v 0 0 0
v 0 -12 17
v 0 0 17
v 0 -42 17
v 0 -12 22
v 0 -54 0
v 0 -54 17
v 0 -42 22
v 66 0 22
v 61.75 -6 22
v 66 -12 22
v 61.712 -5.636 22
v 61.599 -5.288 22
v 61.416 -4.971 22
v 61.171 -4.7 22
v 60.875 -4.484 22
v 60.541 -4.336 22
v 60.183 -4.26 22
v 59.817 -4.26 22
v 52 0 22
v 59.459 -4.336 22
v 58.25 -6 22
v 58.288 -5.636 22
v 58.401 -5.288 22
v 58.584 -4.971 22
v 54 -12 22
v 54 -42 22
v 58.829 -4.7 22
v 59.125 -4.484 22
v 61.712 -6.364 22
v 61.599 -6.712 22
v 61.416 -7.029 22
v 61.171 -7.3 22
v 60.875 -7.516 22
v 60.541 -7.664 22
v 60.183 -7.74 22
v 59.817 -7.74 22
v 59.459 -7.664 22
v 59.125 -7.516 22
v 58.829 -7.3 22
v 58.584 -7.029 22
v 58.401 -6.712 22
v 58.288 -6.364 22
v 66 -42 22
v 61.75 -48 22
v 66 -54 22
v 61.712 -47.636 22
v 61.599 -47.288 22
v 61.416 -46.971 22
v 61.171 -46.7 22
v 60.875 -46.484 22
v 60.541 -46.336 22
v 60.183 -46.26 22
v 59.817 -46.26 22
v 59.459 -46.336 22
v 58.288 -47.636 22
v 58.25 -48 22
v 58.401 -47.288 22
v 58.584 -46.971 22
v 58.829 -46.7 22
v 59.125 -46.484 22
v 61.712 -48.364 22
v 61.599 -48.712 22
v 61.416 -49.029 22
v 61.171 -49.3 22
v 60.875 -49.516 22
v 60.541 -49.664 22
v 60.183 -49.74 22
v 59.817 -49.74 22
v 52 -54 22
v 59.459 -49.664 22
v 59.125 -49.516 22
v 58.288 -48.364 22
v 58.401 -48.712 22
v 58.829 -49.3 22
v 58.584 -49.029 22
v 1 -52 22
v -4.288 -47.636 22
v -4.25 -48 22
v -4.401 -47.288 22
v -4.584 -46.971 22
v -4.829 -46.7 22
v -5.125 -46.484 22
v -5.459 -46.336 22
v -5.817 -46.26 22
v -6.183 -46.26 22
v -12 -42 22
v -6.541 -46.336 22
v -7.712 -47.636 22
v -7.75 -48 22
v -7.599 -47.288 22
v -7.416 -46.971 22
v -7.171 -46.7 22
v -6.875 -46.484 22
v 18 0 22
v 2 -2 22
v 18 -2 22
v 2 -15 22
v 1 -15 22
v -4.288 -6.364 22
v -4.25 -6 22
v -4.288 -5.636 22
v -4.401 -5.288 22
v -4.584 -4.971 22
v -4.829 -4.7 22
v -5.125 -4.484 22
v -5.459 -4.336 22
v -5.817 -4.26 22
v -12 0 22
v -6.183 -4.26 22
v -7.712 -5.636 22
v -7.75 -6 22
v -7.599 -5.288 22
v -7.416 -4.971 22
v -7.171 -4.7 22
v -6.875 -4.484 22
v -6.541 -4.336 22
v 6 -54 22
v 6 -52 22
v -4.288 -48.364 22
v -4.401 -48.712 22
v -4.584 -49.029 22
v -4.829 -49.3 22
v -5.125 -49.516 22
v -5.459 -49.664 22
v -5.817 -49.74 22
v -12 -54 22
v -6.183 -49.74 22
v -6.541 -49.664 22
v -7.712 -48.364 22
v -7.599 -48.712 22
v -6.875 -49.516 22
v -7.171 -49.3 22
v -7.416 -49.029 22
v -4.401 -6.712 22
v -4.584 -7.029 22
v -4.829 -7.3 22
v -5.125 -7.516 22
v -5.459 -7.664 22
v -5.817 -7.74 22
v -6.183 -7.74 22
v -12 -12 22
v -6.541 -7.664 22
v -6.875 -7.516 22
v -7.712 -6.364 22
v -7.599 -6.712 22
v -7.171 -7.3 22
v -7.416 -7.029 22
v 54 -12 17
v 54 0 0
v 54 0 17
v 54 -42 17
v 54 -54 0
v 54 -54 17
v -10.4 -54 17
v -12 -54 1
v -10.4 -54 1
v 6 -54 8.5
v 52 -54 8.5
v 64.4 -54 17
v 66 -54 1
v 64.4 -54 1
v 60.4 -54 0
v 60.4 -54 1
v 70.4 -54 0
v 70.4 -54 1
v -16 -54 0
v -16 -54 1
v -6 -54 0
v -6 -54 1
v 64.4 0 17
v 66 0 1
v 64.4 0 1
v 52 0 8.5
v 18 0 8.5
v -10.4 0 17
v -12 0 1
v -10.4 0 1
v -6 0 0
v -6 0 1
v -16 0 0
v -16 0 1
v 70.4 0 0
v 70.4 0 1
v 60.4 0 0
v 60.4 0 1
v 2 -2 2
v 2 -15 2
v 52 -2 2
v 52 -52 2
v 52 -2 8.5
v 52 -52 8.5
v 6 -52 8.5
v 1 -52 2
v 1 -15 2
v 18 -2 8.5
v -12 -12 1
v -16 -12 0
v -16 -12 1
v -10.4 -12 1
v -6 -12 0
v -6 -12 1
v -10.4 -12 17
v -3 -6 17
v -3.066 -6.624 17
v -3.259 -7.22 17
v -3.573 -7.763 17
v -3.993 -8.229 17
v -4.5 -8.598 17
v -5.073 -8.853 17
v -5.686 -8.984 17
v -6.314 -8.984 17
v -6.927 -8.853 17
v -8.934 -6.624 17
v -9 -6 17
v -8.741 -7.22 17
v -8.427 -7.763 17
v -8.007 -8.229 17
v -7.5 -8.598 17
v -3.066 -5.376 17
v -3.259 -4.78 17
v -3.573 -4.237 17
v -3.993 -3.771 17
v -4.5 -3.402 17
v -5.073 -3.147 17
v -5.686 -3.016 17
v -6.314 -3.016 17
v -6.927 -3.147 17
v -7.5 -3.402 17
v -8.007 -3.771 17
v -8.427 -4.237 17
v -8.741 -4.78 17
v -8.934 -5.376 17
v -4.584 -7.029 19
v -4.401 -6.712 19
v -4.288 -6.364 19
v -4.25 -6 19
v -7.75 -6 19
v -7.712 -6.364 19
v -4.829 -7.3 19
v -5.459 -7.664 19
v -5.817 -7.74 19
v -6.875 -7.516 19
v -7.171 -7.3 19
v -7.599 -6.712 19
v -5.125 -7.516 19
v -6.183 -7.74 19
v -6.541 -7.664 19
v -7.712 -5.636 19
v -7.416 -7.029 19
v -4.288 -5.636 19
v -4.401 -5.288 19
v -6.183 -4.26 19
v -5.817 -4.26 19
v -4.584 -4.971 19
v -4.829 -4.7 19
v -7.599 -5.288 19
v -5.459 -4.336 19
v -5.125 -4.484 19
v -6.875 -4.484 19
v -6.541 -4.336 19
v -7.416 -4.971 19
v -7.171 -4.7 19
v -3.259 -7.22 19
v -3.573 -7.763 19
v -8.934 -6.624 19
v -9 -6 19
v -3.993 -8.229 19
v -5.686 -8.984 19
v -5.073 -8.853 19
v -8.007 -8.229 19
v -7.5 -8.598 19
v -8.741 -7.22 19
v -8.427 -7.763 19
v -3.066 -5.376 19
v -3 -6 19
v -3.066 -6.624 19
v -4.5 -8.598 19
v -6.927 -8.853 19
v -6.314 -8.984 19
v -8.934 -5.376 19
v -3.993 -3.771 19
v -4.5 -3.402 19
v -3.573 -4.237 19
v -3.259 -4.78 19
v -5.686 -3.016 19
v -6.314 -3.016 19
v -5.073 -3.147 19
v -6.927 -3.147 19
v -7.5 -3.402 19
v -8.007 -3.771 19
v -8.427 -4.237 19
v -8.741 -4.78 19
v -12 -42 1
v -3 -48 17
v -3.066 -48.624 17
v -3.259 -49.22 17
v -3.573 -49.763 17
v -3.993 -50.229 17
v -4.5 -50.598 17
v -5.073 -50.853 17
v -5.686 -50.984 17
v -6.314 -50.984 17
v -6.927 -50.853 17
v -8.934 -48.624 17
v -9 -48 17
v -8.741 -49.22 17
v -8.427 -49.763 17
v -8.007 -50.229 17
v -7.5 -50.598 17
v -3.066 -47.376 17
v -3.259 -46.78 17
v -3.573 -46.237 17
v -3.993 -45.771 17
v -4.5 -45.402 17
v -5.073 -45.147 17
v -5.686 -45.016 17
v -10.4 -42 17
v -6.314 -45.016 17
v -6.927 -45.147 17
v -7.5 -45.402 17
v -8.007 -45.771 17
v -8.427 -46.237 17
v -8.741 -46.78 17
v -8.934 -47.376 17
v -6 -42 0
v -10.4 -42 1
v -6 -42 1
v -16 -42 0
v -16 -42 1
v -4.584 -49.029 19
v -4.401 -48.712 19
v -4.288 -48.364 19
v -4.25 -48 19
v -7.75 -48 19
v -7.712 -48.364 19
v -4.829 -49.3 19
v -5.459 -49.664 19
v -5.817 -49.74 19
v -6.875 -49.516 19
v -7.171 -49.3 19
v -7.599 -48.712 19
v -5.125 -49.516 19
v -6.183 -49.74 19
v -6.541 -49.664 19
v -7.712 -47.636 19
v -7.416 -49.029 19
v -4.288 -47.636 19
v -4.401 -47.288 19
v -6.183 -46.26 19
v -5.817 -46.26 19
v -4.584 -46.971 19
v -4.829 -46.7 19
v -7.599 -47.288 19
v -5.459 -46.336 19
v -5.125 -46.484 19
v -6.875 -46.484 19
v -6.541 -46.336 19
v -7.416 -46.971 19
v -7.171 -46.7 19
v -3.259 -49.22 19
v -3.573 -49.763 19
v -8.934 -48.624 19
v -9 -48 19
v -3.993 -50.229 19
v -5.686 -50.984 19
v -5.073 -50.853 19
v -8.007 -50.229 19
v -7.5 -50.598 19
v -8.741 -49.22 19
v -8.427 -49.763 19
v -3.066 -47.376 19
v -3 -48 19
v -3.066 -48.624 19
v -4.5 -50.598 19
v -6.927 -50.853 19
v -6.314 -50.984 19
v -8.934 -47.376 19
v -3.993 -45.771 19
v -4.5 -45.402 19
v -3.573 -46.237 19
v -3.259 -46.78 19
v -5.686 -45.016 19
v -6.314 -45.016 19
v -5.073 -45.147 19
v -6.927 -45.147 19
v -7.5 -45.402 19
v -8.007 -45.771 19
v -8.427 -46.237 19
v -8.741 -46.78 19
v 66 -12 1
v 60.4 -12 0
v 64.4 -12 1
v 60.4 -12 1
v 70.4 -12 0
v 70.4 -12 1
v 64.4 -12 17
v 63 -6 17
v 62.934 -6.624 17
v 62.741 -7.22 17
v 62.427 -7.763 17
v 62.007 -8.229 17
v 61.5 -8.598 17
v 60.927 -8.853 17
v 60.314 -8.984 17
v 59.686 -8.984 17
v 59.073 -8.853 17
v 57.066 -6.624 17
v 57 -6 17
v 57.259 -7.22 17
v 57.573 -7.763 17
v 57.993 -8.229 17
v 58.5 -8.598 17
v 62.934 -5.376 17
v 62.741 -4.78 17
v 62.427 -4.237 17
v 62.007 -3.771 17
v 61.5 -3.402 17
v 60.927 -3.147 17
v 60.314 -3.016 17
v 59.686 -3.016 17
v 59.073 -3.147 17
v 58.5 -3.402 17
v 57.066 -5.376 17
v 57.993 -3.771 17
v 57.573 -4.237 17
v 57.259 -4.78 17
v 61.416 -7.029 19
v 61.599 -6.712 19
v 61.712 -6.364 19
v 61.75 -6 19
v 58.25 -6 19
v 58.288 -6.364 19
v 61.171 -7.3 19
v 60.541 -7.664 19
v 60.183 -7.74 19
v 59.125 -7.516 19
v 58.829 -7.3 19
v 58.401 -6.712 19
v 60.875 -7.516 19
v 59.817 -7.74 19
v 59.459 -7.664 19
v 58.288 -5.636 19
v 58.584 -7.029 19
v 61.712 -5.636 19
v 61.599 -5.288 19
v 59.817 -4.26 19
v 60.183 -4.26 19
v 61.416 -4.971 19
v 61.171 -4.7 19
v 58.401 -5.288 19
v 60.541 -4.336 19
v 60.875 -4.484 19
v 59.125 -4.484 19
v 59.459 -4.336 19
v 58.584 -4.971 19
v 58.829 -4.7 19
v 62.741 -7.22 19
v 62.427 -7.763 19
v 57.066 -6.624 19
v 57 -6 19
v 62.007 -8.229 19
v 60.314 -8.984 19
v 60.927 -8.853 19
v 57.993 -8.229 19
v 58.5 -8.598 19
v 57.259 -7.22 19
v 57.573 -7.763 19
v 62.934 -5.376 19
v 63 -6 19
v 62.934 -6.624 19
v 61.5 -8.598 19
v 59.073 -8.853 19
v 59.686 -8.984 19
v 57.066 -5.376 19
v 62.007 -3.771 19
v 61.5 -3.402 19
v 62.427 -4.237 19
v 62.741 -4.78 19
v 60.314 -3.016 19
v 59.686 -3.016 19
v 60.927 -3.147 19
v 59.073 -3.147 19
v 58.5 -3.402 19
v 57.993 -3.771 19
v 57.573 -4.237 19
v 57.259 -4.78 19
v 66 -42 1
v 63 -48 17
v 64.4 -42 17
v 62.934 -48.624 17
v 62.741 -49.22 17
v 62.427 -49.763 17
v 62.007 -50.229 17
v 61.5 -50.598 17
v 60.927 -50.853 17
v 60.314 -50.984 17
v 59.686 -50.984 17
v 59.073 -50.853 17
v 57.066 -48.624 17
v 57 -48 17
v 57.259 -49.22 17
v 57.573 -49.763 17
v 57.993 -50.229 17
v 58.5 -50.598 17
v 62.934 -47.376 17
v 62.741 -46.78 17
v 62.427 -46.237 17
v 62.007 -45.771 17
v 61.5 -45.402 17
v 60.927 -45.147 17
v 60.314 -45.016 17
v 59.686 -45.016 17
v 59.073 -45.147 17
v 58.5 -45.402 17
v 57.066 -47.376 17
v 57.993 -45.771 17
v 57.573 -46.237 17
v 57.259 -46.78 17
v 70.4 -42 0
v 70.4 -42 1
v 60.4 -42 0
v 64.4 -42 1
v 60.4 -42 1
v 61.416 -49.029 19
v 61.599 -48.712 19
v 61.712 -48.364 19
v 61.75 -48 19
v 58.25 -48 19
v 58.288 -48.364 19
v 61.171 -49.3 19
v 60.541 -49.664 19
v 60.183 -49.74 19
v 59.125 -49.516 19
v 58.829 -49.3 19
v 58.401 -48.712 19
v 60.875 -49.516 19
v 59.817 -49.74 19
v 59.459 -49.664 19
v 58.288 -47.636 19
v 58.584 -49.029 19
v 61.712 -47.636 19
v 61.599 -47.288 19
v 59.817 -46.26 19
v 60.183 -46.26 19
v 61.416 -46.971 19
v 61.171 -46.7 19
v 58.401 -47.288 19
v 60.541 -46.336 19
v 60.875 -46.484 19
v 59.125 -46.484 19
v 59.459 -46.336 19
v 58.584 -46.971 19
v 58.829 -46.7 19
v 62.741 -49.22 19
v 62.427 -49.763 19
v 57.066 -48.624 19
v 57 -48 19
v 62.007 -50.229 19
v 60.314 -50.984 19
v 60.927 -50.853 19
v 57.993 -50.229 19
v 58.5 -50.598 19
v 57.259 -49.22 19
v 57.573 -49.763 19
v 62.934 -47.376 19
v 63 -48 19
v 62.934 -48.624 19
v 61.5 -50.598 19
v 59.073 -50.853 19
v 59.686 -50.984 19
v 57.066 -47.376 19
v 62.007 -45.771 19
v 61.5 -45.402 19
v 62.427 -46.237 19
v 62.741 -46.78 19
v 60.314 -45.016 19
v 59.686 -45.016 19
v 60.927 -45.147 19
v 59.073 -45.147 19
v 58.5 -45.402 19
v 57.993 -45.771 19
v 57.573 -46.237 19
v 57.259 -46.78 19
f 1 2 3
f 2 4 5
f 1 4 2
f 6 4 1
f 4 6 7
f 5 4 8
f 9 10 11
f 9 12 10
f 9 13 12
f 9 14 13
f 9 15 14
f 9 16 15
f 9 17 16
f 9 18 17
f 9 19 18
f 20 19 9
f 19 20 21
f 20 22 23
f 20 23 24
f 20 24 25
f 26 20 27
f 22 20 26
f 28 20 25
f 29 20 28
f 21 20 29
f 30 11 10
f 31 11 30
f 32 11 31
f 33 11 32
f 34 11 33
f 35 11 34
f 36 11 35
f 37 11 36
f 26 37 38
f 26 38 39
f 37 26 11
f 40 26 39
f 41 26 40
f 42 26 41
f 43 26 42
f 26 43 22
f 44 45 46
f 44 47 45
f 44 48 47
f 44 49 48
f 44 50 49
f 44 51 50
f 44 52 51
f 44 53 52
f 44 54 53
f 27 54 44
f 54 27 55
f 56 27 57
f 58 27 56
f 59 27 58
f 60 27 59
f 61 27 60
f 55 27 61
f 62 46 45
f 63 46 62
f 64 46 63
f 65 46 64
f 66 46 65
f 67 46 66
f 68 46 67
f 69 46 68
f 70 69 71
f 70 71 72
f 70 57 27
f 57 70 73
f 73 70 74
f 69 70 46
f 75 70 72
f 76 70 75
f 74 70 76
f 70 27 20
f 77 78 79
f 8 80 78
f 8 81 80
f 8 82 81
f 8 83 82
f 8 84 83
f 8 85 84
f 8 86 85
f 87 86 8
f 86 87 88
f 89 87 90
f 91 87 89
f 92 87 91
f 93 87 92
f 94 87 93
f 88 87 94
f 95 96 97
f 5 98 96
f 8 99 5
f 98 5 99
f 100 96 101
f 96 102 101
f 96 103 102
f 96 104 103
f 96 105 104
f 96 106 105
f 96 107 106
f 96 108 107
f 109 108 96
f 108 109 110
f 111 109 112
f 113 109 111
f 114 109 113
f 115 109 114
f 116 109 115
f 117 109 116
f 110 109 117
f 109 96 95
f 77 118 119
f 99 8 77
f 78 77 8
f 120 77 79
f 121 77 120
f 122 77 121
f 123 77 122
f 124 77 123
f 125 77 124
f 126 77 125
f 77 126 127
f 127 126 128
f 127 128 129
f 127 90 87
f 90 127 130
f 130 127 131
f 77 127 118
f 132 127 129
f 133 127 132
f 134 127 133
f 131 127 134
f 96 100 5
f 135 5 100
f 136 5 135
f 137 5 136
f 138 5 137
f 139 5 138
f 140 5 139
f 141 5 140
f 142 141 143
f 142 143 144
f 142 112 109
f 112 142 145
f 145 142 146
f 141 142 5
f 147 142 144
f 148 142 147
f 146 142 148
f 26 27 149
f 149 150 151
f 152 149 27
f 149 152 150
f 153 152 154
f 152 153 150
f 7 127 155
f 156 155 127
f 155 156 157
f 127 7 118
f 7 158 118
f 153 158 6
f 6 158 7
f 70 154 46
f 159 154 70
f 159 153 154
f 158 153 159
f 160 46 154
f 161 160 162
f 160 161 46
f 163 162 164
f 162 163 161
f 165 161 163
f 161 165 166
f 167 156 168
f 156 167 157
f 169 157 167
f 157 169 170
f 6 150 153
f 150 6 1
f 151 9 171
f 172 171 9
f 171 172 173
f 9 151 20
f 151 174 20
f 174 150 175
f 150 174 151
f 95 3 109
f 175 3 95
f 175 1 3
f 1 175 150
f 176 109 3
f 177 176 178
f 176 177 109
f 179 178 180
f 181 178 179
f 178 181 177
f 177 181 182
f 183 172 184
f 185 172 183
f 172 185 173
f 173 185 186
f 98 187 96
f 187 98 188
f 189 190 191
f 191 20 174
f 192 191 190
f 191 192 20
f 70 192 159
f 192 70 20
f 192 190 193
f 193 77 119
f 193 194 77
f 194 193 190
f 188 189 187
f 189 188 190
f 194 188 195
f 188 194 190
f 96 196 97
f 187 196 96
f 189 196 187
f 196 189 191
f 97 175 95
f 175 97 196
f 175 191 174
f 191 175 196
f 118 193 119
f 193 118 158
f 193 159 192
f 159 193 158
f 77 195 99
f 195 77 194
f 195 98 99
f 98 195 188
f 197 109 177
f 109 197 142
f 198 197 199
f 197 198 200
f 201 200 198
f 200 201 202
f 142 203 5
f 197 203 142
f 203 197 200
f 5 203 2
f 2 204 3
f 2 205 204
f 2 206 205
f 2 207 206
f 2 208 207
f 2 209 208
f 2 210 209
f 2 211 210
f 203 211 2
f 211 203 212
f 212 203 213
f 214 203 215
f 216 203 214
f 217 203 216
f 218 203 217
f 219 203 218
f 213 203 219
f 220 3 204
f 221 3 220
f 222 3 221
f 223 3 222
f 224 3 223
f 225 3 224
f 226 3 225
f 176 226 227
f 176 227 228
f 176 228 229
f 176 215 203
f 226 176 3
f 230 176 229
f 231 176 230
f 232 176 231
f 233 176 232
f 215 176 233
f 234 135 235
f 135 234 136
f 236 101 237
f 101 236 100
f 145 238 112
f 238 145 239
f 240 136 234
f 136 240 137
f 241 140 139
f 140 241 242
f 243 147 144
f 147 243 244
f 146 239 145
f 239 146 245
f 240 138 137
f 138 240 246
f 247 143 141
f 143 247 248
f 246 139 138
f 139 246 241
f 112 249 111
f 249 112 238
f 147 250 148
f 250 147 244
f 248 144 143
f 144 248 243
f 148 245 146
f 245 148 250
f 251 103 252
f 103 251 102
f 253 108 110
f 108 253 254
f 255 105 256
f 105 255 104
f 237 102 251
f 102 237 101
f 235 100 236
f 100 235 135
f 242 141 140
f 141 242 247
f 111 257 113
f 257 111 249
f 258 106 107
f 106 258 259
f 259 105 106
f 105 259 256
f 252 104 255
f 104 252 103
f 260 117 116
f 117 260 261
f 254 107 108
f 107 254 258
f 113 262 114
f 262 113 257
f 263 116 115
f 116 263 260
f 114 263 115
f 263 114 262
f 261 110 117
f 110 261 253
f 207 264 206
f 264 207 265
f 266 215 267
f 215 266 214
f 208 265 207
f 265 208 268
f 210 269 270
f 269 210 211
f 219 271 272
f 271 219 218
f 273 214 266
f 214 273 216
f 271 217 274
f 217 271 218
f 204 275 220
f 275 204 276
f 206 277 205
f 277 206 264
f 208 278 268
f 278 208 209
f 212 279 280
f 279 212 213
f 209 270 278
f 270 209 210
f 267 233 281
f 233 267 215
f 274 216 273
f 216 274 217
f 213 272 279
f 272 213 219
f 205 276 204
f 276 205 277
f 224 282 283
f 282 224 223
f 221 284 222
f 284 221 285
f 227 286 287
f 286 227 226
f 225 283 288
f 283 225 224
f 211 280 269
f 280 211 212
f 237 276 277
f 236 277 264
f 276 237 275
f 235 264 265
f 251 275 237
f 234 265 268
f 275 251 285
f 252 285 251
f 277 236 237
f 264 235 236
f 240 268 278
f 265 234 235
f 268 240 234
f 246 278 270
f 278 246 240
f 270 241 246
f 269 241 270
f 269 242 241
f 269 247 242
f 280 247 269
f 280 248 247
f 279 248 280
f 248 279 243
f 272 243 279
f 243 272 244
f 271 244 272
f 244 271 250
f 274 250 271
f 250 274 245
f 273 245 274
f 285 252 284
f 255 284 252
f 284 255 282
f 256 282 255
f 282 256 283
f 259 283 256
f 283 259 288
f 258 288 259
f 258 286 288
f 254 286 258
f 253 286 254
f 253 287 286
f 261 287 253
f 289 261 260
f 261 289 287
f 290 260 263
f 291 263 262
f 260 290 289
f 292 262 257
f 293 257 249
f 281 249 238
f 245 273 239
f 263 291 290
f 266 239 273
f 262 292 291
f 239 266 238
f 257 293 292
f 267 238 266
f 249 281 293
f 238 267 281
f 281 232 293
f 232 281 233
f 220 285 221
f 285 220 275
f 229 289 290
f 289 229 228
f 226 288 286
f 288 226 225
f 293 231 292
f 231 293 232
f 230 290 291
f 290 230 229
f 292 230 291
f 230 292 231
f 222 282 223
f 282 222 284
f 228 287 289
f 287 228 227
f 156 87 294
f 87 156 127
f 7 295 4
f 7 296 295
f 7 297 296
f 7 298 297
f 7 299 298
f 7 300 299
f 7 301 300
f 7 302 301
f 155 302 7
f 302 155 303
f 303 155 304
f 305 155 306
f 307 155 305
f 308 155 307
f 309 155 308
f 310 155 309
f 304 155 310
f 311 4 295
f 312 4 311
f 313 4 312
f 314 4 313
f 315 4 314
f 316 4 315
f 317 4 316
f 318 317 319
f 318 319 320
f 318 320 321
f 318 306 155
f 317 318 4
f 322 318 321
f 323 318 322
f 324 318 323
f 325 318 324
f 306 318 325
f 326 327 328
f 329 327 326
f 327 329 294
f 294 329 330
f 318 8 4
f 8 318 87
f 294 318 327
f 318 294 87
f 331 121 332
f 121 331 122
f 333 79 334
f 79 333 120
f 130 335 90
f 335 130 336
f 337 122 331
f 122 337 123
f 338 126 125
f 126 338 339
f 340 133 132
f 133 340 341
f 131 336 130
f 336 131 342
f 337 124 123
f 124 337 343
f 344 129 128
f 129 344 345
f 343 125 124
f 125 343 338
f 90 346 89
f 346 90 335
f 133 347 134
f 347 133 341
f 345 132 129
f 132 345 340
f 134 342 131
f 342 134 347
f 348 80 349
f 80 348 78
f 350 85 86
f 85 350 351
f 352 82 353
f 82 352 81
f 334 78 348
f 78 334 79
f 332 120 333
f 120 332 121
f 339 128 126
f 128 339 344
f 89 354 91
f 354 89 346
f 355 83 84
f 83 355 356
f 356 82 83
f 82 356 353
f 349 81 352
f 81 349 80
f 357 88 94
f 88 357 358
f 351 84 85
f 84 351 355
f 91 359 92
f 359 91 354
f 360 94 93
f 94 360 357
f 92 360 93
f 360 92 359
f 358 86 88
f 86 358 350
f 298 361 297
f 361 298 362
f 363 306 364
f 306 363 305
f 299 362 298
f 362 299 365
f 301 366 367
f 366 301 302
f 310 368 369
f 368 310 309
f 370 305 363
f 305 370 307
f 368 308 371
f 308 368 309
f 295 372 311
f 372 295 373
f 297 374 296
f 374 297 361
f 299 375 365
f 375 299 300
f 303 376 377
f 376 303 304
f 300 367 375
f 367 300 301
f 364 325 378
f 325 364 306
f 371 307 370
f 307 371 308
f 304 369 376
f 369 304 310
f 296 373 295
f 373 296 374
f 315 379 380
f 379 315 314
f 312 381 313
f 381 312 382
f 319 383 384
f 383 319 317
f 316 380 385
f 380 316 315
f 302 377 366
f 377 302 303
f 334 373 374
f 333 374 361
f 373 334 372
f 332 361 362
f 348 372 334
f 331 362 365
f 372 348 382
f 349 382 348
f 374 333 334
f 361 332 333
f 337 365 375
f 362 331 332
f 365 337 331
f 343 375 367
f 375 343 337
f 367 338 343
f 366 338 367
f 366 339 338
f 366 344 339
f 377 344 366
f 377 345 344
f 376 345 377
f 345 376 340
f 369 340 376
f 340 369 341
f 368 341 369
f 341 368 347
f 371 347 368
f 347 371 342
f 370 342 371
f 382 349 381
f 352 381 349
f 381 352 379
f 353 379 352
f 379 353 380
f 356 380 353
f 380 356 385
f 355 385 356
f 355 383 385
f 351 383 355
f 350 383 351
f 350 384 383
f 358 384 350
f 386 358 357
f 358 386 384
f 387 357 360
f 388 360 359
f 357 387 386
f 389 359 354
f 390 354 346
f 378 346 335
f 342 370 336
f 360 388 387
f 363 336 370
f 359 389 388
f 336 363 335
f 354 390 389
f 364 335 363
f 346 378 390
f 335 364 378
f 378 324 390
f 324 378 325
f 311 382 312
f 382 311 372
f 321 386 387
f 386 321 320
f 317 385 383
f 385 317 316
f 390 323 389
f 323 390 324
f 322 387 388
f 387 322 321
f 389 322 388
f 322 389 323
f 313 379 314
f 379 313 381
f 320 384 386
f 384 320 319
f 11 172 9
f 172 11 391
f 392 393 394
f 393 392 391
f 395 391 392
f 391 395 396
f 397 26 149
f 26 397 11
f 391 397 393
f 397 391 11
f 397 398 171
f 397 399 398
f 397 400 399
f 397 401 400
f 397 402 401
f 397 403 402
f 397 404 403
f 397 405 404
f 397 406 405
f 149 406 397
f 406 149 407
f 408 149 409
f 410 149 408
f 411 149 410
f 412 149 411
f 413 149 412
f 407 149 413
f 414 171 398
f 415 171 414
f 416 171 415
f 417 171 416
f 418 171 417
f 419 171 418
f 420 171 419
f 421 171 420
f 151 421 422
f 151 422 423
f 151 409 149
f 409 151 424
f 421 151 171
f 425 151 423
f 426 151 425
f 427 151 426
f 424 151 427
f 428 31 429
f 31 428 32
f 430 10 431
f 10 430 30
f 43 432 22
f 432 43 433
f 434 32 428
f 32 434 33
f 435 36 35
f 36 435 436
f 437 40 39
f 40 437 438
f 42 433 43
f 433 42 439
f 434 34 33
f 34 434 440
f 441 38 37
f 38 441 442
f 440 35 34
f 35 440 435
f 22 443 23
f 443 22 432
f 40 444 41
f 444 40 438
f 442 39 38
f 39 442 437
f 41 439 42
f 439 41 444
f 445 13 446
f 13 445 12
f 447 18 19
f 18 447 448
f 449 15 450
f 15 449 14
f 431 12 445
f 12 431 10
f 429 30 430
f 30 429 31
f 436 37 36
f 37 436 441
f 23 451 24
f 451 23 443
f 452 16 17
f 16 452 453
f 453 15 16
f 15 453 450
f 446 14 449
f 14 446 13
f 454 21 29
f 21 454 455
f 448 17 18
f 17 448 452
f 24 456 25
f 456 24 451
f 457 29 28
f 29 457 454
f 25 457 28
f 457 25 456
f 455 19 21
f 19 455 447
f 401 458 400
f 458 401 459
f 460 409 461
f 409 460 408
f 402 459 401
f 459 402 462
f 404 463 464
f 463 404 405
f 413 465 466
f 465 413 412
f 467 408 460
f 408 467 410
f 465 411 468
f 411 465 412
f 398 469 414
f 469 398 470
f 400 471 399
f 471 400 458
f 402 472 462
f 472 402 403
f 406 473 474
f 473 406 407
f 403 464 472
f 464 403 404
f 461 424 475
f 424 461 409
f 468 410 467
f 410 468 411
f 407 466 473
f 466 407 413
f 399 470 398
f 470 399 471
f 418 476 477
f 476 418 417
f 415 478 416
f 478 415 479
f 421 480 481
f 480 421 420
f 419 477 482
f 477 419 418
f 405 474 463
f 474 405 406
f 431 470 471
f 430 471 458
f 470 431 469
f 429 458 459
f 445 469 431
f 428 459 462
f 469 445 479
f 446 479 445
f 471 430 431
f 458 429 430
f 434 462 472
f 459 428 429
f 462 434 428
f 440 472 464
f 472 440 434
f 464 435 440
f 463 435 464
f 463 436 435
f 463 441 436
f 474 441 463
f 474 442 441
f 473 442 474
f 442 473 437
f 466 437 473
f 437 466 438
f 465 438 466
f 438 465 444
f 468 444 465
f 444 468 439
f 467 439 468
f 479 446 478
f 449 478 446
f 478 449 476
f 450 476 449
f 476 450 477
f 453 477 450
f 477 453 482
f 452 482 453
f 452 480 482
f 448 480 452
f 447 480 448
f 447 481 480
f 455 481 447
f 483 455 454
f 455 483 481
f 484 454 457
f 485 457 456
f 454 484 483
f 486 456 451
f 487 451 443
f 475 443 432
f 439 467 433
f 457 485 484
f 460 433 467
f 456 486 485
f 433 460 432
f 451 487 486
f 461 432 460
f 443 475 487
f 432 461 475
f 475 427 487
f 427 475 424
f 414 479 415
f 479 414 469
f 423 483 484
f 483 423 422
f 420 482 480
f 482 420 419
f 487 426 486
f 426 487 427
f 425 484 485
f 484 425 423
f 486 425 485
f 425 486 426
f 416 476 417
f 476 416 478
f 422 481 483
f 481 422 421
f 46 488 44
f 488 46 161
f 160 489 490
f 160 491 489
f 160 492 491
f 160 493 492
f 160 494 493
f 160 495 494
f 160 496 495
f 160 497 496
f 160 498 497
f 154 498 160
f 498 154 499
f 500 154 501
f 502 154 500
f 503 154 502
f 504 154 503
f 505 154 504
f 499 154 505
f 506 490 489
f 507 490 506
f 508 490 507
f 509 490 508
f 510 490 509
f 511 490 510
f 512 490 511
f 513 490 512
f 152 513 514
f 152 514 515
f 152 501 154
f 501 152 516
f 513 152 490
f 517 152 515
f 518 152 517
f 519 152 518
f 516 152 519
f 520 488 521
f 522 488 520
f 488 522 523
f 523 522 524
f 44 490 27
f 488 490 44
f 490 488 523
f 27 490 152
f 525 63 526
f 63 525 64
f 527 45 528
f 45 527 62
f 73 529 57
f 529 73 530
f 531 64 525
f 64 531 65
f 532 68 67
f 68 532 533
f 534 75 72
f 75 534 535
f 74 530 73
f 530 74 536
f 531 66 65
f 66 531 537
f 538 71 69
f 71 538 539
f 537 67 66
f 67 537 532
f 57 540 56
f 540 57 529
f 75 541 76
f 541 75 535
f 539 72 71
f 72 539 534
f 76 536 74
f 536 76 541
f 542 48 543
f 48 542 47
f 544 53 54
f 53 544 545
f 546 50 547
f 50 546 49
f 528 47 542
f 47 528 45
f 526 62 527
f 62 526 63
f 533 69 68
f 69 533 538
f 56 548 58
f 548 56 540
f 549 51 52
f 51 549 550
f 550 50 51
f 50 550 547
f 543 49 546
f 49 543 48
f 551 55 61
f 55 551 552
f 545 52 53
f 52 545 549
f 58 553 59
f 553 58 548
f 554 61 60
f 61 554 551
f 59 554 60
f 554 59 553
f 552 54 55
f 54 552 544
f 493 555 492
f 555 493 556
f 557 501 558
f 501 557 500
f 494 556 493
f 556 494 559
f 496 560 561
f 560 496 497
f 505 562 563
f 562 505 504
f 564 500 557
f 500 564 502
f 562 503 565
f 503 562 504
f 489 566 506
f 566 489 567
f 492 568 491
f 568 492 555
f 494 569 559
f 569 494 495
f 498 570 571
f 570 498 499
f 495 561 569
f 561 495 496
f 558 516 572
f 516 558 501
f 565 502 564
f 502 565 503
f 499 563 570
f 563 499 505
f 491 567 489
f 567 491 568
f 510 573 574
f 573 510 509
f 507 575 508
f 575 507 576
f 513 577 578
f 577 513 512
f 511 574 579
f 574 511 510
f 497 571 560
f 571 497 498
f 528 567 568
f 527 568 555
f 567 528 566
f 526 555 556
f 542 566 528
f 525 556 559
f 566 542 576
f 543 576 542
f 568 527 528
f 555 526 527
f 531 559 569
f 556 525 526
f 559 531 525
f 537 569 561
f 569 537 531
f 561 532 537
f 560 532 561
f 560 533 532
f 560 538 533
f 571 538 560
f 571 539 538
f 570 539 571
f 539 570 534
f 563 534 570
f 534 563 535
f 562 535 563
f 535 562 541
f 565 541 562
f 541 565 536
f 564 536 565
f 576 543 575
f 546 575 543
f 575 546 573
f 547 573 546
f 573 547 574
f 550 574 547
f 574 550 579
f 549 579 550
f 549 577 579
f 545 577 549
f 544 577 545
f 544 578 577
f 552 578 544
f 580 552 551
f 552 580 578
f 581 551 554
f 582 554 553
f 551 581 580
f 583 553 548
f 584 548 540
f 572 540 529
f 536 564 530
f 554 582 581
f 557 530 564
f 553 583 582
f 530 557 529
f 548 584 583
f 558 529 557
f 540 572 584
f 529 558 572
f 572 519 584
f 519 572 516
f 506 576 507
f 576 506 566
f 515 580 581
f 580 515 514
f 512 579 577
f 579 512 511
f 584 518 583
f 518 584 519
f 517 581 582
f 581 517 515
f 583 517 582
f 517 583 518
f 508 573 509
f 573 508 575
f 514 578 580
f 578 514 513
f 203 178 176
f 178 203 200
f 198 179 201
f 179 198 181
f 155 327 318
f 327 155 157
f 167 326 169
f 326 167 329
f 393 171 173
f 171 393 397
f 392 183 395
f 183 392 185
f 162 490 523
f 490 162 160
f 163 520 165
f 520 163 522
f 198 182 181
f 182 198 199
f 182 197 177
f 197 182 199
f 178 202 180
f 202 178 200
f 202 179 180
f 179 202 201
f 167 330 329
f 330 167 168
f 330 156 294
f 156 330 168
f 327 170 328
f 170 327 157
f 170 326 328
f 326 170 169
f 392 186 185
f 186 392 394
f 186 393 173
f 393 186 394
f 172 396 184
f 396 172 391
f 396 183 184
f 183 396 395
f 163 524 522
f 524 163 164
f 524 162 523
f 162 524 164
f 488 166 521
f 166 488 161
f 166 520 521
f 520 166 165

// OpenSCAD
// file: nutsnbolts/data-access.scad
// Norm Nuts and Bolts - a OpenSCAD library
// Copyright (C) 2012  Johannes Kneer

// This program is free software: you can redistribute it and/or modify
// it under the terms of the GNU General Public License as published by
// the Free Software Foundation, either version 3 of the License, or
// (at your option) any later version.

// This program is distributed in the hope that it will be useful,
// but WITHOUT ANY WARRANTY; without even the implied warranty of
// MERCHANTABILITY or FITNESS FOR A PARTICULAR PURPOSE.  See the
// GNU General Public License for more details.

// You should have received a copy of the GNU General Public License
// along with this program.  If not, see <http://www.gnu.org/licenses/>.


// DATABASE ACCESS FUNCTIONS AND CONSTANTS



// == CONSTANTS ==

// screw table access keys
_NB_S_DESC            = 0;
_NB_S_FAMKEY			    = 1;
_NB_S_LENGTH          = 2;
_NB_S_NOTHREAD_LENGTH = 3;

_NB_F_DESC			      = 0;
_NB_F_OUTER_DIA       = 1;
_NB_F_INNER_DIA       = 2;
_NB_F_LEAD            = 3;
_NB_F_KEY             = 4;
_NB_F_KEY_DEPTH       = 5;
_NB_F_HEAD_HEIGHT     = 6;
_NB_F_HEAD_DIA        = 7;
_NB_F_NUT_KEY         = 8;
_NB_F_NUT_HEIGHT      = 9;
_NB_F_PITCH_FINE      = 10;
_NB_F_PITCH_MEDIUM    = 11;
_NB_F_PITCH_COARSE    = 12;


// == FUNCTIONS ==

// _get_screw("descriptor")   with descriptor = M8x25
//   find the line for a general object in the data matrix

function _get_screw(n) = data_screw[search([n], data_screw)[0]];
function _get_screw_fam(n) = data_screw_fam[search([_get_screw(n)[_NB_S_FAMKEY]], data_screw_fam)[0]];

function _get_fam(n) = data_screw_fam[search([n], data_screw_fam)[0]];


// _get_XXXXX("descriptor") functions
// find a single property in the database

function _get_desc(n)        = _get_screw(n)[_NB_S_DESC];
function _get_famkey(n)         = _get_screw(n)[_NB_S_FAMKEY];
function _get_length(n)      = _get_screw(n)[_NB_S_LENGTH];
function _get_nt_length(n)   = _get_screw(n)[_NB_S_NOTHREAD_LENGTH];

function _get_outer_dia(n)   = _get_screw_fam(n)[_NB_F_OUTER_DIA];
function _get_inner_dia(n)   = _get_screw_fam(n)[_NB_F_INNER_DIA];
function _get_lead(n)        = _get_screw_fam(n)[_NB_F_LEAD];
function _get_head_height(n) = _get_screw_fam(n)[_NB_F_HEAD_HEIGHT];
function _get_head_dia(n)    = _get_screw_fam(n)[_NB_F_HEAD_DIA];
function _get_nut_key(n)     = _get_screw_fam(n)[_NB_F_NUT_KEY];
function _get_nut_height(n)  = _get_screw_fam(n)[_NB_F_NUT_HEIGHT];
function _get_fine_pitch(n)  = _get_screw_fam(n)[_NB_F_PITCH_FINE];
function _get_medium_pitch(n)  = _get_screw_fam(n)[_NB_F_PITCH_MEDIUM];
function _get_coarse_pitch(n)  = _get_screw_fam(n)[_NB_F_PITCH_COARSE];
// file: nutsnbolts/materials.scad
// Norm Nuts and Bolts - a OpenSCAD library
// Copyright (C) 2012  Johannes Kneer

// This program is free software: you can redistribute it and/or modify
// it under the terms of the GNU General Public License as published by
// the Free Software Foundation, either version 3 of the License, or
// (at your option) any later version.

// This program is distributed in the hope that it will be useful,
// but WITHOUT ANY WARRANTY; without even the implied warranty of
// MERCHANTABILITY or FITNESS FOR A PARTICULAR PURPOSE.  See the
// GNU General Public License for more details.

// You should have received a copy of the GNU General Public License
// along with this program.  If not, see <http://www.gnu.org/licenses/>.


// MATERIALS

// all materials take a no-parameter that should be used to document
// the exact material in code, the number is not yet used in the code 



module stainless(no="1.4301") {
	color([0.45, 0.43, 0.5]) children([0:$children-1]);
}

module steel(no) {
	color([0.65, 0.67, 0.72]) children([0:$children-1]);
}

module iron(no="ST37") {
	color([0.36, 0.33, 0.33]) children([0:$children-1]);
}

// additional colors
CL_ZINC = [0.4, 0.4, 0.4];
// main file
include <nutsnbolts/cyl_head_bolt.scad>;
include <nutsnbolts/materials.scad>;

$fs = 0.01;
thickness = 2;

Espwidth = 50;
Espdepth = 50;
EspHeight = 22;
//EspHeight = 15.5;
ScrewBorder = 2;
ScrewDepth = 5;
    
module box(){
    //cube
    difference(){
        cube([Espwidth+thickness+thickness,Espdepth+thickness+thickness,EspHeight], 0);
        translate([thickness,thickness,thickness]){cube([Espwidth,Espdepth,EspHeight], 0);};
    };
};

module holes(){
    //DC Input
    translate([thickness+Espwidth-34,-1,thickness+6.5]){cube([34,thickness+2,EspHeight], 0);};
    //Outputs
    translate([thickness+Espwidth-46,1+Espdepth,thickness+6.5]){cube([46,thickness+2,EspHeight], 0);};
    //Fets
    translate([thickness-1,thickness+Espwidth-37,thickness]){cube([2,37,EspHeight-5+thickness+1], 0);};
};

module screw(){
    difference() {
        cube([8+ScrewBorder+ScrewBorder,8+ScrewBorder+ScrewBorder,ScrewDepth], 0);
	translate([4+ScrewBorder, 4+ScrewBorder, -1]) cylinder(ScrewBorder+ScrewBorder+4.5, d=3.5, center=false);
        
    translate([4+ScrewBorder, 4+ScrewBorder, -1]) cylinder(3, d=6, center=false);
    }
}

module case(){
    difference(){
            box();
            holes();
    }
}

mirror([0,1,0]){
    case();
    translate([-ScrewBorder-ScrewBorder-8, 0, EspHeight-ScrewDepth]) screw();
    translate([-ScrewBorder-ScrewBorder-8, thickness+Espdepth-ScrewBorder-8, EspHeight-ScrewDepth]) screw();
    translate([thickness+thickness+Espdepth, 0, EspHeight-ScrewDepth]) screw();
    translate([thickness+thickness+Espdepth, thickness+Espdepth-ScrewBorder-8, EspHeight-ScrewDepth]) screw();

    //print support
    //vertical
    translate([-ScrewBorder-ScrewBorder-8, 0, 0]) cube([1.6,8+ScrewBorder+ScrewBorder,EspHeight-ScrewDepth], 0);
    translate([-ScrewBorder-ScrewBorder-8, Espwidth-8, 0]) cube([1.6,8+ScrewBorder+ScrewBorder,EspHeight-ScrewDepth], 0);
    translate([Espdepth+ScrewBorder+ScrewBorder+8+thickness+thickness-1.6, 0, 0]) cube([1.6,8+ScrewBorder+ScrewBorder,EspHeight-ScrewDepth], 0);
    translate([Espdepth+ScrewBorder+ScrewBorder+8+thickness+thickness-1.6, Espwidth-8, 0]) cube([1.6,8+ScrewBorder+ScrewBorder,EspHeight-ScrewDepth], 0);
    //horizontal
    translate([-ScrewBorder-ScrewBorder-8-4, 0, 0]) cube([10,8+ScrewBorder+ScrewBorder,1], 0);
    translate([-ScrewBorder-ScrewBorder-8-4, Espwidth-8, 0]) cube([10,8+ScrewBorder+ScrewBorder,1], 0);
    translate([Espdepth+ScrewBorder+ScrewBorder+8+thickness+thickness-1.6-4, 0, 0]) cube([10,8+ScrewBorder+ScrewBorder,1], 0);
    translate([Espdepth+ScrewBorder+ScrewBorder+8+thickness+thickness-1.6-4, Espwidth-8, 0]) cube([10,8+ScrewBorder+ScrewBorder,1], 0);
}
